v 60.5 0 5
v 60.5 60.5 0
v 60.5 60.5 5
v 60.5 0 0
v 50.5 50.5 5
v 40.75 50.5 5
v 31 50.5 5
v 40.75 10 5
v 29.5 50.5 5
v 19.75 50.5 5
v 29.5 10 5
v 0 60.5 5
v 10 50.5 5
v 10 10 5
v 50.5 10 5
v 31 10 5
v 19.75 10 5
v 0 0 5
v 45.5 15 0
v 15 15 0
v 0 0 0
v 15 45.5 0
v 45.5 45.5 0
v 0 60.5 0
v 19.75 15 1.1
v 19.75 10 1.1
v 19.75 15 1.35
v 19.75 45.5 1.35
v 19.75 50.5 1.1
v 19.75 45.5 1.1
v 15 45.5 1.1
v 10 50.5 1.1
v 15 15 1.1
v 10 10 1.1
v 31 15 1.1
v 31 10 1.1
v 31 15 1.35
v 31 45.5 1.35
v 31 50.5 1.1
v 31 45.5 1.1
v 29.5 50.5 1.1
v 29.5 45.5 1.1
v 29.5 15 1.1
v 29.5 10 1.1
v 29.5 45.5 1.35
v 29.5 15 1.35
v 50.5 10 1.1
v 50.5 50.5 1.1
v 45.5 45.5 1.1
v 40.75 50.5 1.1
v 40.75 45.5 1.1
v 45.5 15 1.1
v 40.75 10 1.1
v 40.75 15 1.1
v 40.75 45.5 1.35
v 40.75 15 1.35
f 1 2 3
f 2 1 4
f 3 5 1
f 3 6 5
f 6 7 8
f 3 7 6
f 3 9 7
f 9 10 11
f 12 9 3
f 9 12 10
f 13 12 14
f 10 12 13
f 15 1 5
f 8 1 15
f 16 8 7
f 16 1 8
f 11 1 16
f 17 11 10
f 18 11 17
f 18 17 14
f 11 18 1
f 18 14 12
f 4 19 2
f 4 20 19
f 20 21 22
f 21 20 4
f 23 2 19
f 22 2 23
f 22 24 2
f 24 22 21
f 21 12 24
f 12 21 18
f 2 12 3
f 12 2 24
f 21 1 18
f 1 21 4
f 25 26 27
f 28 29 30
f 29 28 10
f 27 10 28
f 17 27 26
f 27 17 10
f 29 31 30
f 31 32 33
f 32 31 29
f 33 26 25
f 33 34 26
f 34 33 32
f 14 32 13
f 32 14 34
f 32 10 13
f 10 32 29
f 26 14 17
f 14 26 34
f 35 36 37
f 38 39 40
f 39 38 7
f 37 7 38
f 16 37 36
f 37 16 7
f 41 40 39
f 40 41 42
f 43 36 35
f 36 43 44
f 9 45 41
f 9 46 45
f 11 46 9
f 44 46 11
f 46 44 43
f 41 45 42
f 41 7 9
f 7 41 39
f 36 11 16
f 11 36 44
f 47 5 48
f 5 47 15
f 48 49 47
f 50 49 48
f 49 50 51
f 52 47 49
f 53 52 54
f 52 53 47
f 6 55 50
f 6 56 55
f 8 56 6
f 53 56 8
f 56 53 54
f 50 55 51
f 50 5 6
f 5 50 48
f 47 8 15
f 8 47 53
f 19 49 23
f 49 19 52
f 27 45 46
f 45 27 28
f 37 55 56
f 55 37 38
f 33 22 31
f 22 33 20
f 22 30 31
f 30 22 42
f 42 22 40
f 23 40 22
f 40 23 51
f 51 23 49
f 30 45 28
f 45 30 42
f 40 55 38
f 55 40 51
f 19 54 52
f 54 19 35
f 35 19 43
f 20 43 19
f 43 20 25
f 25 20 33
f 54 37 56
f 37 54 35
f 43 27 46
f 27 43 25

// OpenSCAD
glass_thickness = 1.1;
no_scratch_z = 0.25;
pocket_thickness = glass_thickness + no_scratch_z;

glass_dim = 30;
glass_xy_fudge = 0.5;
pocket_xy = glass_dim + glass_xy_fudge;

// for mechanical robustness
outer_rim_width = 10;

extraXY = 30;

// main cube outer dims
x = pocket_xy + extraXY;
y = pocket_xy + extraXY;
z = 5; // for mechanical robustness

slot_width = 1.5;
side_opening_width = 4.5;

side_pocket_x = y/2-outer_rim_width-glass_dim/2+side_opening_width;

difference(){
    cube([x,y,z]);
    
    // first slot
    translate([outer_rim_width, outer_rim_width, glass_thickness]) cube([side_pocket_x, y-2*outer_rim_width, z-glass_thickness]);
    
    // middle slot
    translate([x/2-slot_width/2,outer_rim_width, glass_thickness]) cube([slot_width,y-2*outer_rim_width, z-glass_thickness]);
    
    // third slot
    translate([x-outer_rim_width-side_pocket_x, outer_rim_width, glass_thickness]) cube([side_pocket_x, y-2*outer_rim_width, z-glass_thickness]);
    
    // glass pocket
    translate([(x-pocket_xy)/2,(y-pocket_xy)/2,0]) cube([pocket_xy, pocket_xy, pocket_thickness]);
}
